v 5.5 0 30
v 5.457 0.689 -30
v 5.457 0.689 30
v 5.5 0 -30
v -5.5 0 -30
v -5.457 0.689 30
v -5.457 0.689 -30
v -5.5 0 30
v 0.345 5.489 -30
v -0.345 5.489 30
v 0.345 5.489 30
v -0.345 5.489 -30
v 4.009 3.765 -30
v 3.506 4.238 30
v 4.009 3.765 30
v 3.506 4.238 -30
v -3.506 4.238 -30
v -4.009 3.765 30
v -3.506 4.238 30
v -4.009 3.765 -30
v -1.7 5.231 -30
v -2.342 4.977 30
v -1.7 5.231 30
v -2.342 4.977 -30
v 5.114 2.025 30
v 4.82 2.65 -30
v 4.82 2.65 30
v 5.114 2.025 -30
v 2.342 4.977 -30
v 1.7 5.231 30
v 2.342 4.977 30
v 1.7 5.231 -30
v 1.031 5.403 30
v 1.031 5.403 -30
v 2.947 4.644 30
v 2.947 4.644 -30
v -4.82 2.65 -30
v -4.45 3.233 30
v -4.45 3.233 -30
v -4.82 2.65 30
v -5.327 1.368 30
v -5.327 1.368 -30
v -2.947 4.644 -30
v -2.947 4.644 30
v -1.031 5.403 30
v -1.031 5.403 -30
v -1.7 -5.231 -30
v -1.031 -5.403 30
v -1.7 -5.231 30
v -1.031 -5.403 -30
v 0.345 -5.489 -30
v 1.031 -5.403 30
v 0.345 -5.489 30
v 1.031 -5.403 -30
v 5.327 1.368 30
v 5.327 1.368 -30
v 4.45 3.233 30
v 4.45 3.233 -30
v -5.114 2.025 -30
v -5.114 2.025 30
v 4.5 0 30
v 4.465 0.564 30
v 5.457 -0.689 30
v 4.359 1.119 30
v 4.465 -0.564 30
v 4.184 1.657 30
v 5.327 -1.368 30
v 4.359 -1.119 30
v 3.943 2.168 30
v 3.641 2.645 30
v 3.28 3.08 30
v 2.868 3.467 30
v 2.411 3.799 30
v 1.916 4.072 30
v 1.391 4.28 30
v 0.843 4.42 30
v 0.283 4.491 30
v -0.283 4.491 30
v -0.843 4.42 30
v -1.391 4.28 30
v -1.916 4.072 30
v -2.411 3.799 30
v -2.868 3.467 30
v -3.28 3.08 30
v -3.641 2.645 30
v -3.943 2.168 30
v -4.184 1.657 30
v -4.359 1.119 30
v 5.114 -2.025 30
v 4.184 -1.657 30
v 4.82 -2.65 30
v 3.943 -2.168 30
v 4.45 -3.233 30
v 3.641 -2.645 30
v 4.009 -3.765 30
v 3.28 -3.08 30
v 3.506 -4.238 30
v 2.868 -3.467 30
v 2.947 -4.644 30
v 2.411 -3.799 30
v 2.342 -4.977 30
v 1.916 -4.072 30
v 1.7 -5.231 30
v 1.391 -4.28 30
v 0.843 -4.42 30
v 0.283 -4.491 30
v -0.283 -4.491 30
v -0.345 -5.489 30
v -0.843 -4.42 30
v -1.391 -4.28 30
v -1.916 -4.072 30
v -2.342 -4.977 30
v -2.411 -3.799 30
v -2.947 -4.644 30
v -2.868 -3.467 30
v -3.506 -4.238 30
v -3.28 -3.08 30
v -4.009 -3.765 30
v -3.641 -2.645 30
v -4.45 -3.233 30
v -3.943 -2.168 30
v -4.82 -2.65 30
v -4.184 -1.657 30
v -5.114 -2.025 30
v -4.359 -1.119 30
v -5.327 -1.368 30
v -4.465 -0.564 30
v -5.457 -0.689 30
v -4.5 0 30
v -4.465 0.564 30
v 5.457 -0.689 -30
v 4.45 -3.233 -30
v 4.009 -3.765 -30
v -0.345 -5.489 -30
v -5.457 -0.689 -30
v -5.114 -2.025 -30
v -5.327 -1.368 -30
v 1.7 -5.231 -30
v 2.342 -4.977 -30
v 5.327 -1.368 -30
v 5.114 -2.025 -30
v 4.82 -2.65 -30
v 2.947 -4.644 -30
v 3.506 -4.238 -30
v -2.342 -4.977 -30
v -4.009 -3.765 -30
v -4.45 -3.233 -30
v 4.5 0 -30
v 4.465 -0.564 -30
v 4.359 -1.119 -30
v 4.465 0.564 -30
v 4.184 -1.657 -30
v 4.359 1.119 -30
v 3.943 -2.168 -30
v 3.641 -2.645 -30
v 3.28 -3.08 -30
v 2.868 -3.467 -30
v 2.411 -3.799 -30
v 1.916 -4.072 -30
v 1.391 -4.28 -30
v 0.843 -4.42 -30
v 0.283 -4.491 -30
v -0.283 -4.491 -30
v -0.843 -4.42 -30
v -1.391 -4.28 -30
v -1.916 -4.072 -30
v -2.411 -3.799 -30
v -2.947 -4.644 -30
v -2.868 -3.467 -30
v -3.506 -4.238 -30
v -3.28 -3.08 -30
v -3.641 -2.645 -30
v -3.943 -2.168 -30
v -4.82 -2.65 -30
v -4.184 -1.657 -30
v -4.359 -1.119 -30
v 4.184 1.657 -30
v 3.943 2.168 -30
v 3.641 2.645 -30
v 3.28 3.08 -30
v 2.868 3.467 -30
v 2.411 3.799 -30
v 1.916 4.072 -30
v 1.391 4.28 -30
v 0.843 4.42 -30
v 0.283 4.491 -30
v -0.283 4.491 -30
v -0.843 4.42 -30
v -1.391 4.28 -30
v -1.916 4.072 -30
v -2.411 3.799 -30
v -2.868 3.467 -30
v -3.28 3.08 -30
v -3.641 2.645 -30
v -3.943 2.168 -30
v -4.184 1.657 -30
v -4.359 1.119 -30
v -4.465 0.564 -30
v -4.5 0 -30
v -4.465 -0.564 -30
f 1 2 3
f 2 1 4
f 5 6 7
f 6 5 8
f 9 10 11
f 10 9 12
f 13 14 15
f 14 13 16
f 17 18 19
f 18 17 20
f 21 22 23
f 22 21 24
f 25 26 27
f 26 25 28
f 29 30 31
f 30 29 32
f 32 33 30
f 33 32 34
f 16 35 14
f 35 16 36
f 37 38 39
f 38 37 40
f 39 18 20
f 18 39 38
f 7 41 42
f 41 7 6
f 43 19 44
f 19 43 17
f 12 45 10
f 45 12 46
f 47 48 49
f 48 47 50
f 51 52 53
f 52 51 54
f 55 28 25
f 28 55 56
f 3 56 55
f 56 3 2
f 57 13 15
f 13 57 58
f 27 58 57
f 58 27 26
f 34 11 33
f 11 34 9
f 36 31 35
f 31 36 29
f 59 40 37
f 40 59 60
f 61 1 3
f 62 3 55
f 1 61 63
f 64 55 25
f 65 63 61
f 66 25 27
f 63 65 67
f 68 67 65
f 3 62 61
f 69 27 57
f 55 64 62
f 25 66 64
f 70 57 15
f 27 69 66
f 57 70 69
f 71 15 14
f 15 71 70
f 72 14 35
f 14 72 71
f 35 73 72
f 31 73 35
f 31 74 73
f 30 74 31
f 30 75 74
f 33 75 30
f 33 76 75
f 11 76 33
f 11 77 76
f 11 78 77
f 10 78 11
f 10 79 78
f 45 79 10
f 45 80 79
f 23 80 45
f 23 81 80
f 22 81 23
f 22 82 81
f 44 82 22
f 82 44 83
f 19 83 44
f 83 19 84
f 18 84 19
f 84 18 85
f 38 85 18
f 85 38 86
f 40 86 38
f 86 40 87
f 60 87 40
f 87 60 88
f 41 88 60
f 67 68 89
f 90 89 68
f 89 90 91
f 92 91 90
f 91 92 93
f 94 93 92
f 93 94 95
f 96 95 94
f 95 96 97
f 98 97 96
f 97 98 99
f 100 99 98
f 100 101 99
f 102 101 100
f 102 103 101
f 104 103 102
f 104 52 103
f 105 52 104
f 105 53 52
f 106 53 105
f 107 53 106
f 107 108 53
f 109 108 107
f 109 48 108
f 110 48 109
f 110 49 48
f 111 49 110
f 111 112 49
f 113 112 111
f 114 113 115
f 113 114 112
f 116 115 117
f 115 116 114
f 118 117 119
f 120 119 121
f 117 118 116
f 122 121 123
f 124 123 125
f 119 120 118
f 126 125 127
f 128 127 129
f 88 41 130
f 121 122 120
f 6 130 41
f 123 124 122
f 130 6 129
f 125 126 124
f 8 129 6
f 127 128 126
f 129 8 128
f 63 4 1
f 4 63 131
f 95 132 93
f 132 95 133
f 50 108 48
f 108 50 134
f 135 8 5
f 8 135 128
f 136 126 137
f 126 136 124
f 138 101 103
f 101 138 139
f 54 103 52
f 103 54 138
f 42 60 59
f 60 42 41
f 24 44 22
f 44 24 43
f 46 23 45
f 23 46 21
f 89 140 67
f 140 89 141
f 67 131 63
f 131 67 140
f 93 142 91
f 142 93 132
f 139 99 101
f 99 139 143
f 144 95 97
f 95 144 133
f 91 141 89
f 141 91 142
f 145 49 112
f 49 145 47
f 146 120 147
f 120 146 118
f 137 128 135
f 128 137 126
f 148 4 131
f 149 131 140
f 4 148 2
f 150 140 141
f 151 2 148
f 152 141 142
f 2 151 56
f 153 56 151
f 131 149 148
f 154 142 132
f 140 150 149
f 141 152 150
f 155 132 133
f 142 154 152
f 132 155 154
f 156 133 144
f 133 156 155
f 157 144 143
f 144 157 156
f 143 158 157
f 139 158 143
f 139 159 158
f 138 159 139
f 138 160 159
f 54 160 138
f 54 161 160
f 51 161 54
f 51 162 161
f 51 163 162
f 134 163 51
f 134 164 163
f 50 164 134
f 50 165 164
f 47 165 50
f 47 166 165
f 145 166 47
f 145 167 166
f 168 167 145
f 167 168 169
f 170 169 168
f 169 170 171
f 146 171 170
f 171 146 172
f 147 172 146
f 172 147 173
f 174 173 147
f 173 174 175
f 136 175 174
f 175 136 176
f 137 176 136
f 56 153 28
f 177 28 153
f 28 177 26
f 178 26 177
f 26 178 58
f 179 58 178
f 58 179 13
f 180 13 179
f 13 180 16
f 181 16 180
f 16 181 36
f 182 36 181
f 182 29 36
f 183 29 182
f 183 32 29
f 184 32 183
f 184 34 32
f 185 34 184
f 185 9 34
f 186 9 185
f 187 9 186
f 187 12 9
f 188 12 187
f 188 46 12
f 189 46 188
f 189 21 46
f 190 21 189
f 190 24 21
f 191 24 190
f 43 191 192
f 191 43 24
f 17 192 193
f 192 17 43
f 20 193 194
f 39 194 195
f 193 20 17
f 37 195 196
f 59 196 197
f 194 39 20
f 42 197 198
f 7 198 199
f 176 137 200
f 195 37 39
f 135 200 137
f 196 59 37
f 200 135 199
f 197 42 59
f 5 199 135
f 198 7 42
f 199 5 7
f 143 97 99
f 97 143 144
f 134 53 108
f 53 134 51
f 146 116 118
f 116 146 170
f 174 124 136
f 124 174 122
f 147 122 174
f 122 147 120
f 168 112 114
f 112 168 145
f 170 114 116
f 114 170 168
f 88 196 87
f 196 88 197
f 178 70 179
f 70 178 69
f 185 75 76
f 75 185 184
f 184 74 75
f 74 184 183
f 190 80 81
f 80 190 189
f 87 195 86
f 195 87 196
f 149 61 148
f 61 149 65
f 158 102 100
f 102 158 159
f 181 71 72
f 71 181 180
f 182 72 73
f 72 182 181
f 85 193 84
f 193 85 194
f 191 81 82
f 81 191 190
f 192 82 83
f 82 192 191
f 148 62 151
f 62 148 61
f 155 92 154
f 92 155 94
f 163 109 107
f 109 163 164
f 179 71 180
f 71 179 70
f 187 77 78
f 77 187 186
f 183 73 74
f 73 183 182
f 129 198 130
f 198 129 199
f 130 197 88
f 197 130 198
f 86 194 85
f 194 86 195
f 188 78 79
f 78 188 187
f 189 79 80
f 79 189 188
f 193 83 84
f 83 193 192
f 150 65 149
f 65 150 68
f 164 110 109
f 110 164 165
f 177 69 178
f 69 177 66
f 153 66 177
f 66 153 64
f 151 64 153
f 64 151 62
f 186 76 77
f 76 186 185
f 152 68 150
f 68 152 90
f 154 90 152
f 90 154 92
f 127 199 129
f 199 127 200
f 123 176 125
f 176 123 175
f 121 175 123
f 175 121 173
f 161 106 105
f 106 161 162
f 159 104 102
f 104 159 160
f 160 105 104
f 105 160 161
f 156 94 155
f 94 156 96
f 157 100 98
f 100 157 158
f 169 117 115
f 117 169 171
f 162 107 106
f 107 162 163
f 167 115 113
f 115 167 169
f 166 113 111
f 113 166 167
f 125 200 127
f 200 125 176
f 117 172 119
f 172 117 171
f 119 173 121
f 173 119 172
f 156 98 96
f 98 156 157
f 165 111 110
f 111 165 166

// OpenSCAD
$fn = 50;


difference() {
	union() {
		translate(v = [0, 0, -30.0000000000]) {
			cylinder(h = 60, r = 5.5000000000);
		}
	}
	union() {
		translate(v = [0, 0, -100.0000000000]) {
			cylinder(h = 200, r = 4.5000000000);
		}
	}
}
